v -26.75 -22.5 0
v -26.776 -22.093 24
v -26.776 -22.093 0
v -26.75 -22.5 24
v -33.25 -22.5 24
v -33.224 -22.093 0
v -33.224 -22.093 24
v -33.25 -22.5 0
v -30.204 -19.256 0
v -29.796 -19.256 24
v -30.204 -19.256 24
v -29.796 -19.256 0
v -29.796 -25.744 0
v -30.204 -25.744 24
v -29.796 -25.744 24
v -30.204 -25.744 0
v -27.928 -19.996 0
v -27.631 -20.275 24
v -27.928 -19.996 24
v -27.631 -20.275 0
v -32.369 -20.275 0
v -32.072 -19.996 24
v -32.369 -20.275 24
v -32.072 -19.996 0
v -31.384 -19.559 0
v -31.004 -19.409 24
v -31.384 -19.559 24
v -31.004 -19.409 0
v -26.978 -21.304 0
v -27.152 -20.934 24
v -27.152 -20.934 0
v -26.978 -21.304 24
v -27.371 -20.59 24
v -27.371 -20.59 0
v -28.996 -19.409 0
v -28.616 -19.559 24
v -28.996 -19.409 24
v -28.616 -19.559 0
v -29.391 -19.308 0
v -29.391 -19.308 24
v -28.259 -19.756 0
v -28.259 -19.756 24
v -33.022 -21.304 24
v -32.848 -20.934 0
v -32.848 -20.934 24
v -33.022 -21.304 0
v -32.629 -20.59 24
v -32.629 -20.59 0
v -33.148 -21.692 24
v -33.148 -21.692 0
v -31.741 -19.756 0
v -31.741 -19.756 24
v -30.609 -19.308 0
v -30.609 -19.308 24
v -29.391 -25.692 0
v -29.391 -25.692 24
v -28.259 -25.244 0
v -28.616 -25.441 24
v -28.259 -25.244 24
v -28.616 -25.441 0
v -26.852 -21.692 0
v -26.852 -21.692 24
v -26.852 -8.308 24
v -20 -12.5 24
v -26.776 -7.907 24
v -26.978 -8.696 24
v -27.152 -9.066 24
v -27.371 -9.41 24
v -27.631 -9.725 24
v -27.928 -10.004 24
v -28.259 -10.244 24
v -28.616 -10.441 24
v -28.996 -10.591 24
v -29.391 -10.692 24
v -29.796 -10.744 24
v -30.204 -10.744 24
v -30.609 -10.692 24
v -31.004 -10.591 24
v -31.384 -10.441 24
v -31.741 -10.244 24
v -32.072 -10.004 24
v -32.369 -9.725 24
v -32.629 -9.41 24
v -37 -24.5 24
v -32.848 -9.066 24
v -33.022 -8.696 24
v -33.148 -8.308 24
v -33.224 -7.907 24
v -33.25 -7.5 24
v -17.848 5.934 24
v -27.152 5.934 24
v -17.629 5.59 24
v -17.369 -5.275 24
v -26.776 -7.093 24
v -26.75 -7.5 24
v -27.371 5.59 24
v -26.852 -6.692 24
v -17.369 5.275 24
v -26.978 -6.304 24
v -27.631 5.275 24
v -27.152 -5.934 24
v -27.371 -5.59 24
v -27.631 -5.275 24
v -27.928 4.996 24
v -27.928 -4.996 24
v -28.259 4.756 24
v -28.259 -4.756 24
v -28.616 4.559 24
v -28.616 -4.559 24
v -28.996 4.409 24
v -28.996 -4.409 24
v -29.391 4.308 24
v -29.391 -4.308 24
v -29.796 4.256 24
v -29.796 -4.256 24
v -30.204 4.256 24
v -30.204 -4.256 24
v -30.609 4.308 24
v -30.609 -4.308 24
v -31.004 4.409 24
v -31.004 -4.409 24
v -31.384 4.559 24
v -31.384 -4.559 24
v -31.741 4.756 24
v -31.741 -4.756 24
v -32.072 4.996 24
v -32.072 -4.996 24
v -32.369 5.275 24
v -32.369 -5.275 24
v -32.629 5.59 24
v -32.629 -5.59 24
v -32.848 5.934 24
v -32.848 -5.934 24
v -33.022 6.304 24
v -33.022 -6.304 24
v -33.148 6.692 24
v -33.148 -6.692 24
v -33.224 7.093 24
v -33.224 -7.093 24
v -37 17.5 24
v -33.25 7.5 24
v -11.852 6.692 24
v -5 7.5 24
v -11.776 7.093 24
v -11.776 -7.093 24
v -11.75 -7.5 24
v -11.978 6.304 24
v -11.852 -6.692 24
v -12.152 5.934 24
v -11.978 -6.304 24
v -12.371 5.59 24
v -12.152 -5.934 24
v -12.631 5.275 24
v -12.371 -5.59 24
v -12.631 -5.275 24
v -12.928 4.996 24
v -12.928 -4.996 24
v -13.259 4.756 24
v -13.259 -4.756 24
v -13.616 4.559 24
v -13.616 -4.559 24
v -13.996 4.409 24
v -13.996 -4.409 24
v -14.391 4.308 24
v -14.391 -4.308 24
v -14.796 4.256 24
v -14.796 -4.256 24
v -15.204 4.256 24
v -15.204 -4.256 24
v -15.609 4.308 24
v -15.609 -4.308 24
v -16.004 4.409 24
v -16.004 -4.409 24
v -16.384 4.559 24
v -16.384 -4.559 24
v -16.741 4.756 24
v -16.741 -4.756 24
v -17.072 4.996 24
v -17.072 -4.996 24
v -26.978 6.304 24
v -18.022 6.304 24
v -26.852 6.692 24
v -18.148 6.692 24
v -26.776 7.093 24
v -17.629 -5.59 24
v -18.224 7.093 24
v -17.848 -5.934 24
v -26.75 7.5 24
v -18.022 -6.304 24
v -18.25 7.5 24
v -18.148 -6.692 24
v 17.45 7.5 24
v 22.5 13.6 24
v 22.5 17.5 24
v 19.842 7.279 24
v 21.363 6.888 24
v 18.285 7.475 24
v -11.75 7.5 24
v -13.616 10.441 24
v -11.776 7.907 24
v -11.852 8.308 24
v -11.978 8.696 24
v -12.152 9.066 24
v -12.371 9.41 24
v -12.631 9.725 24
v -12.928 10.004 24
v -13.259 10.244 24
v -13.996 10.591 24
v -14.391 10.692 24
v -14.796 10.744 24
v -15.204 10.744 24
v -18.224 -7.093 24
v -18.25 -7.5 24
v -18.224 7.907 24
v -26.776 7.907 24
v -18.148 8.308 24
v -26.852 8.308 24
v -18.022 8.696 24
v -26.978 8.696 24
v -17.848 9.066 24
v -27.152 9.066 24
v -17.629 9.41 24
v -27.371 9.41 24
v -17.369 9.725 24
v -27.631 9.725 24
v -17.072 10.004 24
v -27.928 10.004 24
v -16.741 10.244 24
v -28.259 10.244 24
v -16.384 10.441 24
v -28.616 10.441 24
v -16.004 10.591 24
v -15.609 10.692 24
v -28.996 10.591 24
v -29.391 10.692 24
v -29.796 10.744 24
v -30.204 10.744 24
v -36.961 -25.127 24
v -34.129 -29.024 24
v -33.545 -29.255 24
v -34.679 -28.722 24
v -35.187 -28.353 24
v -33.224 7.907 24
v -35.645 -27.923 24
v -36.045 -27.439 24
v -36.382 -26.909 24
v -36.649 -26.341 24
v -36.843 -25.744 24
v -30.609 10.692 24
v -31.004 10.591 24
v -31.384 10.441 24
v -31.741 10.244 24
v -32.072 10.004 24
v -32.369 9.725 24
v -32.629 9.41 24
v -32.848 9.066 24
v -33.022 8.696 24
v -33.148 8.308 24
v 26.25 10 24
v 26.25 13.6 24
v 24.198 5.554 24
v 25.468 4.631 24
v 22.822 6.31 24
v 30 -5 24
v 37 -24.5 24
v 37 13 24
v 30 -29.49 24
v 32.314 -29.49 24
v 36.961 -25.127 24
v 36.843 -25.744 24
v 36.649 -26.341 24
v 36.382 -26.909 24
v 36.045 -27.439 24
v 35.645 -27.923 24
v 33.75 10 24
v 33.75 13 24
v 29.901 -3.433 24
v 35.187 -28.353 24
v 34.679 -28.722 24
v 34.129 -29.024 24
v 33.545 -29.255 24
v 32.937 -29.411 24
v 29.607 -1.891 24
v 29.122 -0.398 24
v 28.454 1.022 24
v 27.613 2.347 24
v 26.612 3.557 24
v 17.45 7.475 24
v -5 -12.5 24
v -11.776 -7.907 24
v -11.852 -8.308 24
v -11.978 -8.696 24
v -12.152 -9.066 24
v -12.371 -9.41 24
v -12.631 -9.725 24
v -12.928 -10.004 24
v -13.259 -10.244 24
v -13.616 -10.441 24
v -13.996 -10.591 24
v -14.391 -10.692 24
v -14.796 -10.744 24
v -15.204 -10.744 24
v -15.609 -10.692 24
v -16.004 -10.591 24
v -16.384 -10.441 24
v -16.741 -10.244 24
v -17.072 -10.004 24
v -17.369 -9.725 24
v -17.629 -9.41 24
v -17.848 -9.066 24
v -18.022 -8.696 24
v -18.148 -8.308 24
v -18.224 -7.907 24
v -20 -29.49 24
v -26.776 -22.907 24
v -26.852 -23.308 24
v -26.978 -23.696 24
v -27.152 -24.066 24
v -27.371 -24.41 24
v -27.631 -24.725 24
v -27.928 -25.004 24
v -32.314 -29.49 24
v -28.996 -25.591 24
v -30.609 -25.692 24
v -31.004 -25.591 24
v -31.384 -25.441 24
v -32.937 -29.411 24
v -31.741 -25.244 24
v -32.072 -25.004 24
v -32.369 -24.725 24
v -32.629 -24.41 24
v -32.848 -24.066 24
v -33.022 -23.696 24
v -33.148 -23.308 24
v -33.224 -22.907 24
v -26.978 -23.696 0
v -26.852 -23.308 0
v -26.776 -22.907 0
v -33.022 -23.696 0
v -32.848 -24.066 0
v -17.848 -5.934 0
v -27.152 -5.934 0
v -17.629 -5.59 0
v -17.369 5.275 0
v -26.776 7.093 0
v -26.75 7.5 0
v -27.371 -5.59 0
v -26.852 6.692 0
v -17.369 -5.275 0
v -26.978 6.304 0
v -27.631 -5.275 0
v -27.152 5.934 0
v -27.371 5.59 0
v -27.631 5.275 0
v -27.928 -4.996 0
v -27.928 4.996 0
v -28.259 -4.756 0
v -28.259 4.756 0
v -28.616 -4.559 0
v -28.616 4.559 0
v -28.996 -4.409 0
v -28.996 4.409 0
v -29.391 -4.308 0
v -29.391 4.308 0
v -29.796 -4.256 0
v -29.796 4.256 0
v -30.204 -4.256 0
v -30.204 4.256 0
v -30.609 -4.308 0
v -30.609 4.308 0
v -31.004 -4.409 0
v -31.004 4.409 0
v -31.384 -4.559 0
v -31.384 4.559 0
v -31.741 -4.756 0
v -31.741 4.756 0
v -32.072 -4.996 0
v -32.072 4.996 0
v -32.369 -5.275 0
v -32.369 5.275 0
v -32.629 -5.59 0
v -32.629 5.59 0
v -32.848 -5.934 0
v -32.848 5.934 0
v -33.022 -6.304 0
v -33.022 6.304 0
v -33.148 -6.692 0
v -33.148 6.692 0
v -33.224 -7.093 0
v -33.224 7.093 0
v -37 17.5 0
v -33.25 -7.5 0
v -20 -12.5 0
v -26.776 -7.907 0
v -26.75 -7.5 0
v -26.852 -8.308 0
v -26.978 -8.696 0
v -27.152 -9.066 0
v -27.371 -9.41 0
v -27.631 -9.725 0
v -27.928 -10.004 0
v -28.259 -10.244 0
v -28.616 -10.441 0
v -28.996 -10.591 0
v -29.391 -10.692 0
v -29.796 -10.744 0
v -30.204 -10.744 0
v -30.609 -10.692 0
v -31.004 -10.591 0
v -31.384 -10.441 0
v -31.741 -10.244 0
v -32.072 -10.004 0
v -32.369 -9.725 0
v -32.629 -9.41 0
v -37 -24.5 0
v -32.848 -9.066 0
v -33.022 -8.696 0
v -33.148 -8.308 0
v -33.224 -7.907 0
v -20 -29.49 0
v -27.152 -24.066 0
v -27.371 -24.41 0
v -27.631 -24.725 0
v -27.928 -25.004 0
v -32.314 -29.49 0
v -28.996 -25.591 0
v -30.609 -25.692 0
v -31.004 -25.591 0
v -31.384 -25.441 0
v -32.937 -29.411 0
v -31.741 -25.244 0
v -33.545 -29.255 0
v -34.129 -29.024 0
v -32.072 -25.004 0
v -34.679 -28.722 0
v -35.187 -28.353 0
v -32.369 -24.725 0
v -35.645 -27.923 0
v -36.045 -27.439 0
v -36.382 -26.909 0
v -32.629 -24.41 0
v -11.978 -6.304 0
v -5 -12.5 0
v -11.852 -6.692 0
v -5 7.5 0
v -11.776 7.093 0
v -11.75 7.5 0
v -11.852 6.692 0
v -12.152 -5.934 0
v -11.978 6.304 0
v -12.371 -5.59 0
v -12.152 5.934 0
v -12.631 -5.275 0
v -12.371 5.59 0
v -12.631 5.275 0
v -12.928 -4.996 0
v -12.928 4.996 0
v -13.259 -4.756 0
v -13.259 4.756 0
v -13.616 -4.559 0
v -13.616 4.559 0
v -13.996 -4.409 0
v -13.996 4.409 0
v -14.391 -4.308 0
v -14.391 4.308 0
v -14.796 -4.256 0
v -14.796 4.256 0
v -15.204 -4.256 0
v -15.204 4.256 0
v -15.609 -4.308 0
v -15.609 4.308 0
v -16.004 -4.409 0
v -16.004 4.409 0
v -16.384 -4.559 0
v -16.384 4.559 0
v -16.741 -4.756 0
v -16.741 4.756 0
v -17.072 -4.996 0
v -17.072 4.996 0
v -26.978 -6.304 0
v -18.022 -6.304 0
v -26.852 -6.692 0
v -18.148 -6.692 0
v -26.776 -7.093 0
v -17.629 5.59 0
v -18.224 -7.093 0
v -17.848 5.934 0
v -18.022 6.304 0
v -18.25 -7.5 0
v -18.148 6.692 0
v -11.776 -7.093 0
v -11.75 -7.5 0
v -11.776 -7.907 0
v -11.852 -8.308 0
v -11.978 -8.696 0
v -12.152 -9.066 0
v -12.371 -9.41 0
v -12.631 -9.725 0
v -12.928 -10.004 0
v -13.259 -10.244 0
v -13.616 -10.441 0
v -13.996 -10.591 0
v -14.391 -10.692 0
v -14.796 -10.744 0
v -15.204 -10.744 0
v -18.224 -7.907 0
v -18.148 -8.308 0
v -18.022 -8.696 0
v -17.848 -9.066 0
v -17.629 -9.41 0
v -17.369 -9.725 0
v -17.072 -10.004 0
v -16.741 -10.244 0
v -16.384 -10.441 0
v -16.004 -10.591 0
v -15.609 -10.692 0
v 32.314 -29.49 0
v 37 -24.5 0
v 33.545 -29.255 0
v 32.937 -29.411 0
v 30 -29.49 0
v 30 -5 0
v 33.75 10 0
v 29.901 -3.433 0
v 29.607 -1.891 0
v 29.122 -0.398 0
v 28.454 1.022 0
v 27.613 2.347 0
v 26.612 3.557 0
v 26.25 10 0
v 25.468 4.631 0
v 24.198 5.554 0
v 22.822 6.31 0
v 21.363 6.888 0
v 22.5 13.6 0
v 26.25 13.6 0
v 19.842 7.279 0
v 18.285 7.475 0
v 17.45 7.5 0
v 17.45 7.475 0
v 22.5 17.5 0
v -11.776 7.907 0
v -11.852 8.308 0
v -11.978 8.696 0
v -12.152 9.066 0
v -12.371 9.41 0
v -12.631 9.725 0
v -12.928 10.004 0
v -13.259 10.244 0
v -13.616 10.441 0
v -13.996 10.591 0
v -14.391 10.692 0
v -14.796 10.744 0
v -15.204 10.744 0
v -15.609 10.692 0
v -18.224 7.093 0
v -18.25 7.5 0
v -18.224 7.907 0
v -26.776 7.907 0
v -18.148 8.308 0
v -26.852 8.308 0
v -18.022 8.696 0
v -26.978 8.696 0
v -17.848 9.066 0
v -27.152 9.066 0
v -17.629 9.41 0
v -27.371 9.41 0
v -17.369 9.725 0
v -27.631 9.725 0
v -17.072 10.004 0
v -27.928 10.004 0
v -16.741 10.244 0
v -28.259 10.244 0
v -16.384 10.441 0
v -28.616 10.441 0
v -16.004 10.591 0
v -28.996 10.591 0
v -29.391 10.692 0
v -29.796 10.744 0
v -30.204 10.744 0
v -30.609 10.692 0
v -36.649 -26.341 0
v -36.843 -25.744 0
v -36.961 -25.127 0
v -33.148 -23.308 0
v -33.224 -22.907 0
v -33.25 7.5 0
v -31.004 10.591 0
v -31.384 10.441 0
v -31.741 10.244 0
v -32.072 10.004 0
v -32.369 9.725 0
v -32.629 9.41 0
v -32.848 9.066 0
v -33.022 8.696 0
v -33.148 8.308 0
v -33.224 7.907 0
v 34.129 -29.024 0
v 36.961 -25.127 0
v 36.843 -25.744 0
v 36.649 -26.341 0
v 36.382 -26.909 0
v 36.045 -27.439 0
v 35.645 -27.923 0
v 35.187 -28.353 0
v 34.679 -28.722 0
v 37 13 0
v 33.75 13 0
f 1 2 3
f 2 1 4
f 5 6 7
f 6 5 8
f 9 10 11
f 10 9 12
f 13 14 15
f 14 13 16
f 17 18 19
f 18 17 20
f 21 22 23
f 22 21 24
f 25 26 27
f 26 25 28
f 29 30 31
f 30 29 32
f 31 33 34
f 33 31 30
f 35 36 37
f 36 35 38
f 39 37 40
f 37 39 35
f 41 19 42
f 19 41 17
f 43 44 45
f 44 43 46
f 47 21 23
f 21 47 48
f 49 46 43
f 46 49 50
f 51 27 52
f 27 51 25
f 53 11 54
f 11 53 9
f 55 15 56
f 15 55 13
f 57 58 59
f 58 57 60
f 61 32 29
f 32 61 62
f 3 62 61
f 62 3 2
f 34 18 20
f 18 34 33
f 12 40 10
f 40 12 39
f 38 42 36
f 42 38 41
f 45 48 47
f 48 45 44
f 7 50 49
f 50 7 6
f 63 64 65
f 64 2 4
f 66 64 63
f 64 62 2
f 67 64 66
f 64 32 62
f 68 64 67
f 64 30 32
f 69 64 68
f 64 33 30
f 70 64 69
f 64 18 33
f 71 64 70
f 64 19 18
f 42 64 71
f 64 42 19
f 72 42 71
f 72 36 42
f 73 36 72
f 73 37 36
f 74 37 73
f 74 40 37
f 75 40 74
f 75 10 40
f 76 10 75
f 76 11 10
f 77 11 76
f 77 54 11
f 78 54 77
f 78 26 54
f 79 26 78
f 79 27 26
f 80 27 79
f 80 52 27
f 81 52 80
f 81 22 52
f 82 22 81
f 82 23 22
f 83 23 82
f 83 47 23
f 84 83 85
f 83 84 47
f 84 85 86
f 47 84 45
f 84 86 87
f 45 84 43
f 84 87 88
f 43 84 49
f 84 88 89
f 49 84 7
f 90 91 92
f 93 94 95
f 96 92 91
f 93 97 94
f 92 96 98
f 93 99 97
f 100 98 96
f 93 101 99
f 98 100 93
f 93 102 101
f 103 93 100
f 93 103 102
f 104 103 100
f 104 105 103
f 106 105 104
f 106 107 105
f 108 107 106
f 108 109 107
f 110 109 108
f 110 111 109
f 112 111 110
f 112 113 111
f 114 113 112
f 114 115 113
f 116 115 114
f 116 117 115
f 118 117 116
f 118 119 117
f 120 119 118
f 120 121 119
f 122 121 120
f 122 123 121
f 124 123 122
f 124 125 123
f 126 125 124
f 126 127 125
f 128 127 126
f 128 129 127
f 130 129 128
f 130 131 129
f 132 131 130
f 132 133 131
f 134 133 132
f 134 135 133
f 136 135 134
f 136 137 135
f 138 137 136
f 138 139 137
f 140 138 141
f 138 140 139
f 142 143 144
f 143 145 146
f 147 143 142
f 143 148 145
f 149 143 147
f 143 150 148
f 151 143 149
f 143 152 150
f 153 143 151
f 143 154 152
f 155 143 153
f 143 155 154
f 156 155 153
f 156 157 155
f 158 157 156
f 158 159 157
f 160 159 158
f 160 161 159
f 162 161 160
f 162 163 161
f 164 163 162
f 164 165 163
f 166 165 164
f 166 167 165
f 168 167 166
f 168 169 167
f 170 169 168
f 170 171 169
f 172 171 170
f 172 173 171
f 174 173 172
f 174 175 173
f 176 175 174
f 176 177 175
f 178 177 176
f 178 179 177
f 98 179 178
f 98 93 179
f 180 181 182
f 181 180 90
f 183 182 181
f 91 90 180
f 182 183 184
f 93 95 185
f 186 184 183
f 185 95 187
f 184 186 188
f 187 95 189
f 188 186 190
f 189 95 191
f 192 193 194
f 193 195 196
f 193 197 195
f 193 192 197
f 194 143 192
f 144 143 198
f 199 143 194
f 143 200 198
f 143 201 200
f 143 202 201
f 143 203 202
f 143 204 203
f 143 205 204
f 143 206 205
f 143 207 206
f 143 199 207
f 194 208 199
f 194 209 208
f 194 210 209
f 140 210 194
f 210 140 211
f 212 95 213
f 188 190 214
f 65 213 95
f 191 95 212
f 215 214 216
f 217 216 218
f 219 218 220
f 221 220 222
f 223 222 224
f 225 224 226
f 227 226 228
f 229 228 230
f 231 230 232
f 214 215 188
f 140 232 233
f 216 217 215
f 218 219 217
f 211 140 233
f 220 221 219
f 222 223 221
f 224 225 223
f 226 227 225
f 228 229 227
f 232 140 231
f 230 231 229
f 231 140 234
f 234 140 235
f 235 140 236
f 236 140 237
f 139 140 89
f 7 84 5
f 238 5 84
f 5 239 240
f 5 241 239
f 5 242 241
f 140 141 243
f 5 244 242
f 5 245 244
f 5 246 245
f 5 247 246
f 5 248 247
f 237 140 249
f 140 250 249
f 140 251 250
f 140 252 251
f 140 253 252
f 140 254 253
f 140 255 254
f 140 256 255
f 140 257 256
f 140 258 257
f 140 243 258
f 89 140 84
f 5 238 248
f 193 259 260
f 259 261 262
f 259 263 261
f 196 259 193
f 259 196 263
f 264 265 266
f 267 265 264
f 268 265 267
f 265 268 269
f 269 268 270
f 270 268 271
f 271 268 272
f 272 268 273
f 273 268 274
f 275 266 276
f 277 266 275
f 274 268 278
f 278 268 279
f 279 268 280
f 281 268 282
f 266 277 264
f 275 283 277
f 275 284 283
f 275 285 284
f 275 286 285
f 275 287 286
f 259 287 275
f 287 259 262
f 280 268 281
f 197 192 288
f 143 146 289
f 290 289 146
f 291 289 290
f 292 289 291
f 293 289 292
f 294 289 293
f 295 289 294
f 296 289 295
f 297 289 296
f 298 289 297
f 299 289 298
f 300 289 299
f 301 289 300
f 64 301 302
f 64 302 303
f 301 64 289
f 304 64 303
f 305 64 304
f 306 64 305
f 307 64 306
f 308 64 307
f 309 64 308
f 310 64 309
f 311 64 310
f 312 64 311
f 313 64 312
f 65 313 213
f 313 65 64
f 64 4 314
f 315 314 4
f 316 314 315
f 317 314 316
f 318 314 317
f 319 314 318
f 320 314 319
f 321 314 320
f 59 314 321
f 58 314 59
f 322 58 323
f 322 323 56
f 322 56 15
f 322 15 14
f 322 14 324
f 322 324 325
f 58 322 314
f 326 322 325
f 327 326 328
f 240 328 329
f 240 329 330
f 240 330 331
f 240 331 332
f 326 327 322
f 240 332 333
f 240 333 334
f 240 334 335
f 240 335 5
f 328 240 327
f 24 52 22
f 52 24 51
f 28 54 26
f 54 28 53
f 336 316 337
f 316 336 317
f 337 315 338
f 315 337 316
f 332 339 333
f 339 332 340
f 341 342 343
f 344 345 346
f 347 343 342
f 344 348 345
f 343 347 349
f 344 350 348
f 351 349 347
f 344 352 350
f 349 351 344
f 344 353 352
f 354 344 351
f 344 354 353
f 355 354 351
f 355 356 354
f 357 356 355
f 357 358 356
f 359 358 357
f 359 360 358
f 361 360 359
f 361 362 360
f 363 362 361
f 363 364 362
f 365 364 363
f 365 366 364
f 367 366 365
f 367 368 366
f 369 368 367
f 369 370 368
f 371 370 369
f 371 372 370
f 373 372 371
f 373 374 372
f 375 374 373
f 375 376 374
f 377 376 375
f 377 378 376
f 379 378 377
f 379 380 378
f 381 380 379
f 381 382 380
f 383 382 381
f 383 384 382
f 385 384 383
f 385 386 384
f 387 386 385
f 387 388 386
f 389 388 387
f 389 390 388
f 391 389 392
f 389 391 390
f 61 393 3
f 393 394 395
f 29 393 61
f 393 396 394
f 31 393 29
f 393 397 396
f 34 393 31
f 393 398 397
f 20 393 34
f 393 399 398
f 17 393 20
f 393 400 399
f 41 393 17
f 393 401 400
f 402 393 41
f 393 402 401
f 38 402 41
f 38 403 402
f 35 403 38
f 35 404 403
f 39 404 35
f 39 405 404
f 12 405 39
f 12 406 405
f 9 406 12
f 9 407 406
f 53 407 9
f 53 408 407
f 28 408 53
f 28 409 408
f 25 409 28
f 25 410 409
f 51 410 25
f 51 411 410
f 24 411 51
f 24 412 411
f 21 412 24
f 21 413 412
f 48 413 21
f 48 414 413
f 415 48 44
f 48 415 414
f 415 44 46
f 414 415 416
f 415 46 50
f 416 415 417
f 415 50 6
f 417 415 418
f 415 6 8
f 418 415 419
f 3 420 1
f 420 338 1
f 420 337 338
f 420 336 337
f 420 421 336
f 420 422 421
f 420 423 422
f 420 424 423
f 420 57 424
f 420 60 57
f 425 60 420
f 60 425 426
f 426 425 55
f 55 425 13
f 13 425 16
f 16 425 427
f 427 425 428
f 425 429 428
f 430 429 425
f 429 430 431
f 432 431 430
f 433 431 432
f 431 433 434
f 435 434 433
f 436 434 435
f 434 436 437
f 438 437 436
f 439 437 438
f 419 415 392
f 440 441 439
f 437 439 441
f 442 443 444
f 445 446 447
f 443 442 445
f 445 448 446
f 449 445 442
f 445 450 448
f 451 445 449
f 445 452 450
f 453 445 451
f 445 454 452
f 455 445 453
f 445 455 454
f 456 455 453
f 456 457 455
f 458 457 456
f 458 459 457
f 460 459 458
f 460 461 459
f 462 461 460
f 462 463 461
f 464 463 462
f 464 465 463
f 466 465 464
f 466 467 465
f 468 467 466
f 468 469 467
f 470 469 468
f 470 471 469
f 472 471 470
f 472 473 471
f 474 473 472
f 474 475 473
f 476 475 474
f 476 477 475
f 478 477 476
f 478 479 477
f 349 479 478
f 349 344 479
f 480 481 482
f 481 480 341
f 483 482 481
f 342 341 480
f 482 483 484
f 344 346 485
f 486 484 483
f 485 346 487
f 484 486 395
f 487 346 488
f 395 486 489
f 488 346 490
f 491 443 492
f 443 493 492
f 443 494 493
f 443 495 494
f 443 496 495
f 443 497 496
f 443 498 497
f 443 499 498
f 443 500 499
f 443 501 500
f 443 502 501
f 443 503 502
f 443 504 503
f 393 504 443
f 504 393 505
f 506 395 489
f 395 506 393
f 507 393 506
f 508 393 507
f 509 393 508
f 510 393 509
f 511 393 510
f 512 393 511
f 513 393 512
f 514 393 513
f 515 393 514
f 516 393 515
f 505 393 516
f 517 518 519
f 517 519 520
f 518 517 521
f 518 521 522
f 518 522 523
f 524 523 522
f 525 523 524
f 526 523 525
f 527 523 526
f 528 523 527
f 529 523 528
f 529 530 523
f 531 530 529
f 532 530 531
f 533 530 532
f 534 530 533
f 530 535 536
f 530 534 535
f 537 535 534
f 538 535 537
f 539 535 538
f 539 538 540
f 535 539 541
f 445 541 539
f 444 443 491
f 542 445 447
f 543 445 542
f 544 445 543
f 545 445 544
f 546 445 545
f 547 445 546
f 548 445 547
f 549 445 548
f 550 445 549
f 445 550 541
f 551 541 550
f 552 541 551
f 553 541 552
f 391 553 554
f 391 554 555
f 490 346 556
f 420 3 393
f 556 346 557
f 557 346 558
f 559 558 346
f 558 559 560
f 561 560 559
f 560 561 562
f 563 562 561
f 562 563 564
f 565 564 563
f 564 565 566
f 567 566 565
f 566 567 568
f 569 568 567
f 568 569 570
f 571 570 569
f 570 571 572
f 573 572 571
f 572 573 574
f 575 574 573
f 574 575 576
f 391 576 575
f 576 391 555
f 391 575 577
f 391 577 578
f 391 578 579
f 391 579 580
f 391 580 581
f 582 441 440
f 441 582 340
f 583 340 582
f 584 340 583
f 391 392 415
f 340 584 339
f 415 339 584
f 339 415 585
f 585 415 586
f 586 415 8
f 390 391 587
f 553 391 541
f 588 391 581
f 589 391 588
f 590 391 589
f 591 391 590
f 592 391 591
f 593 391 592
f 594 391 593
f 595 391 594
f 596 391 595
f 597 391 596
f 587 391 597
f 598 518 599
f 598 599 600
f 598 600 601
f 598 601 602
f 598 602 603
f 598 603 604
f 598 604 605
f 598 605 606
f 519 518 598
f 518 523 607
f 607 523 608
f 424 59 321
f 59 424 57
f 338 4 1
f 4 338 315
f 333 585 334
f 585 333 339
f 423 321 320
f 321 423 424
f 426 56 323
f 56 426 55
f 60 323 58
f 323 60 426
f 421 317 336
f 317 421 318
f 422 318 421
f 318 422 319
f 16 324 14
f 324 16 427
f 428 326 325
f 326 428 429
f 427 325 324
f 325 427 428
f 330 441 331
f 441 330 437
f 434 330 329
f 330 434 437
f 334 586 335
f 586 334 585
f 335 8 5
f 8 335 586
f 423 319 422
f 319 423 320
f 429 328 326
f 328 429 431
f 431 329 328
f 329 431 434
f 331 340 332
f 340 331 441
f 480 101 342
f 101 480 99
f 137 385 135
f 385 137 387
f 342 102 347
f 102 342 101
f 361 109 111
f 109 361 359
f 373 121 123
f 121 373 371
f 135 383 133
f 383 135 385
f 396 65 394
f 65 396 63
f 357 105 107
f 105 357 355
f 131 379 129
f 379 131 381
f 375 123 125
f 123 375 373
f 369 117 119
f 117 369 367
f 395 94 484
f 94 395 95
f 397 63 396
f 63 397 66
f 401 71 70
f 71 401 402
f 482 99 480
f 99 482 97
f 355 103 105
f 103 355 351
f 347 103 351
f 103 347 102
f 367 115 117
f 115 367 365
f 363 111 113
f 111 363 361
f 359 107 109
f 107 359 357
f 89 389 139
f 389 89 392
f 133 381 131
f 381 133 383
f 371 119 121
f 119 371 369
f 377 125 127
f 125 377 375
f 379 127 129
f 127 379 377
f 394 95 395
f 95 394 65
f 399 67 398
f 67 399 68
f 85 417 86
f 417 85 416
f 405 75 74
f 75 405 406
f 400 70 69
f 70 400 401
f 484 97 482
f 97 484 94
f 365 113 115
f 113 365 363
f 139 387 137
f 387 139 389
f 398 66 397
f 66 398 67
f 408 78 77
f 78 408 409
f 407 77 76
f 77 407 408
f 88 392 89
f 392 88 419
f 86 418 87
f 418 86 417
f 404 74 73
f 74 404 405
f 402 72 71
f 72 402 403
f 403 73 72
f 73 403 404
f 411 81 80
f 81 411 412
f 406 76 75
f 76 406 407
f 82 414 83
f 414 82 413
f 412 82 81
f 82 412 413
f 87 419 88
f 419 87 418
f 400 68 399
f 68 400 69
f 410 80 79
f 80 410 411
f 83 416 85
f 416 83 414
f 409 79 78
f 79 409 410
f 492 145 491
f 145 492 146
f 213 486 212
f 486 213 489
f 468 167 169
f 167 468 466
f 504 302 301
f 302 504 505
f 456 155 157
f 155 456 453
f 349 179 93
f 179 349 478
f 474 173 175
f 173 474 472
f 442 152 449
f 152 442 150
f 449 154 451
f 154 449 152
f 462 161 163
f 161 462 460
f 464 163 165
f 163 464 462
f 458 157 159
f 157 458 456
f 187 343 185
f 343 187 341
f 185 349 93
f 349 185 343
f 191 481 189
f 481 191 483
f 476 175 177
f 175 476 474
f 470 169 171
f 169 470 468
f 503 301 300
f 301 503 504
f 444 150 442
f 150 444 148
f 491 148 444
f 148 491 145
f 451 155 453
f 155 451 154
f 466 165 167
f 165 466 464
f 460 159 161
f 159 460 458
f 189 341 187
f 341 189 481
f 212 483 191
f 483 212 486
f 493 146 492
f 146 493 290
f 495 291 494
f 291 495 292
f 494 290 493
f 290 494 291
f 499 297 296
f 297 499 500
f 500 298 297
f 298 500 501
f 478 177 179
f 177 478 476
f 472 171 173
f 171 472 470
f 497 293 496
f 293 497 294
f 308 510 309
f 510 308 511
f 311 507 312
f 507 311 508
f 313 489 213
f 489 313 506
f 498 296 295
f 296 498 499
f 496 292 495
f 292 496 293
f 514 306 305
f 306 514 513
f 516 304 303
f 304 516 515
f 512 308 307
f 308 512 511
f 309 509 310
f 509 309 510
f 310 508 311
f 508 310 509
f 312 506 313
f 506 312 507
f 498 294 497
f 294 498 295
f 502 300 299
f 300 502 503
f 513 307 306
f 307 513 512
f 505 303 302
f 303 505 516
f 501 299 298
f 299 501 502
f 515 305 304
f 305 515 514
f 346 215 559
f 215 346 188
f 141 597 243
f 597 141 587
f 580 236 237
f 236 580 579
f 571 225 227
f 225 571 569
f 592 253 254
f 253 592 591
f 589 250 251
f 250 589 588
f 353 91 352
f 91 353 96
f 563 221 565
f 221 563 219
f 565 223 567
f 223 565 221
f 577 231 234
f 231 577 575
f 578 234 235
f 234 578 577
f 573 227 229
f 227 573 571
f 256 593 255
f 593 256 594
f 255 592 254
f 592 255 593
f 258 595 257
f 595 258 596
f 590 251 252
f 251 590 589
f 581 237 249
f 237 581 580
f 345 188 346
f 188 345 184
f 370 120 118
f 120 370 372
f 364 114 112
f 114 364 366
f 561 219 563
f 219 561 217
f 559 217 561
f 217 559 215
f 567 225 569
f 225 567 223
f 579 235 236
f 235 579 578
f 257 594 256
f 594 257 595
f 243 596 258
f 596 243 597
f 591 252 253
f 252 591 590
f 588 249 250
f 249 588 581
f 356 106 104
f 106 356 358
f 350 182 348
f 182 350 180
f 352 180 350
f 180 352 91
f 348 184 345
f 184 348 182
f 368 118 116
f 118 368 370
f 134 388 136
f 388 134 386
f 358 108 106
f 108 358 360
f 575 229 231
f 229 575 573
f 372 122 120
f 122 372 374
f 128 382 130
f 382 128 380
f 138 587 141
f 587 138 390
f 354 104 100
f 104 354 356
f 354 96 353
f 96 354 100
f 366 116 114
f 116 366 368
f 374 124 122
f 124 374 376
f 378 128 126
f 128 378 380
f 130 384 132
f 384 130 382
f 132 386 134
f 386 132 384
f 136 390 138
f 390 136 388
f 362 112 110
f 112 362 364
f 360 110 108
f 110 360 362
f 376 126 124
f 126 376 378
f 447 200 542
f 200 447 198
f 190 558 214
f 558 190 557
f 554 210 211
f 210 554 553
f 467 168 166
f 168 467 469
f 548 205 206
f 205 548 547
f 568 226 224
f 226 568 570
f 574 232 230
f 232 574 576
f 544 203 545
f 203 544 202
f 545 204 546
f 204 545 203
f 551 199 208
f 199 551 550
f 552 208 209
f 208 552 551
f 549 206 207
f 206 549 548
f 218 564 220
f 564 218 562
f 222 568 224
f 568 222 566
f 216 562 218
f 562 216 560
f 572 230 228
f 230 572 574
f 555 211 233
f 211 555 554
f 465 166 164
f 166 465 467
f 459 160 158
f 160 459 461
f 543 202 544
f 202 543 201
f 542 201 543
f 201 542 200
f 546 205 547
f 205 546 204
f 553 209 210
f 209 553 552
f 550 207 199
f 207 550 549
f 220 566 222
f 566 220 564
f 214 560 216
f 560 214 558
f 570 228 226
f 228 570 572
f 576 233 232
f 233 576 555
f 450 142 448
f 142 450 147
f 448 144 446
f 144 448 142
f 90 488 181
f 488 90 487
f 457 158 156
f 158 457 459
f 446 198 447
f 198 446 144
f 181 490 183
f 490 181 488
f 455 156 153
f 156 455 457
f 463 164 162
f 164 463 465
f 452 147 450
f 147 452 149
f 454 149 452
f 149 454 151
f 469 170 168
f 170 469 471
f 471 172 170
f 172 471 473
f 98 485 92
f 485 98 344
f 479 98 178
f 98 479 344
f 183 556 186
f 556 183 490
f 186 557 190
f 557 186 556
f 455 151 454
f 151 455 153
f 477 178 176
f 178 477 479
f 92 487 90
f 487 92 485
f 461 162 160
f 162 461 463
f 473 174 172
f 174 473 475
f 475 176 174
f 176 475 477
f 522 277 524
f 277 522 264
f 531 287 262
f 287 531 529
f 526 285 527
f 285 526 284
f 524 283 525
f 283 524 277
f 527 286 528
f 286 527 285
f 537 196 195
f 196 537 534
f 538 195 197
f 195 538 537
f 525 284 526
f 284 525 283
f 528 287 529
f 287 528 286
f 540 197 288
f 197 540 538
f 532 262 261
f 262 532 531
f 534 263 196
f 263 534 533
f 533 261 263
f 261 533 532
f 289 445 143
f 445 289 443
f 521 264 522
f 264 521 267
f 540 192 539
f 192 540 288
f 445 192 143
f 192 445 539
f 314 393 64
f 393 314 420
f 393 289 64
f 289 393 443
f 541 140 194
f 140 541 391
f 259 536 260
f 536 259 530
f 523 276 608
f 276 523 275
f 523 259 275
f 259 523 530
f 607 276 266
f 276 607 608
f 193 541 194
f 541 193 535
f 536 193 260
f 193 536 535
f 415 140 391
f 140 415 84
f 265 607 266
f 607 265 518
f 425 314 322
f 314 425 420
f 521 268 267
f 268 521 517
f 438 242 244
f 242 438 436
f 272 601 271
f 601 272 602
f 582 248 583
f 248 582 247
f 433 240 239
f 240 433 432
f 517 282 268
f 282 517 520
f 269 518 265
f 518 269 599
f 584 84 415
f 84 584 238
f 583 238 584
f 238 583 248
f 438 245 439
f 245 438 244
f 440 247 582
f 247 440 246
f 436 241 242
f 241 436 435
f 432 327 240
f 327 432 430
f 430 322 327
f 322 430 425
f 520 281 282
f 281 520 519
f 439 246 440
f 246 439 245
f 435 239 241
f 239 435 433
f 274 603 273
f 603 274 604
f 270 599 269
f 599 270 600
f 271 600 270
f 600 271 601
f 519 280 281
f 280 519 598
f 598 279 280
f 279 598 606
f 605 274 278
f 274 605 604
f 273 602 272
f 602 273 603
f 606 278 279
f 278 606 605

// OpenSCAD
$fn = 50;


difference() {
	union() {
		hull() {
			translate(v = [-32.0000000000, 24.5000000000, 0]) {
				cylinder(h = 24, r = 5);
			}
			translate(v = [32.0000000000, 24.5000000000, 0]) {
				cylinder(h = 24, r = 5);
			}
			translate(v = [-32.0000000000, -24.5000000000, 0]) {
				cylinder(h = 24, r = 5);
			}
			translate(v = [32.0000000000, -24.5000000000, 0]) {
				cylinder(h = 24, r = 5);
			}
		}
	}
	union() {
		translate(v = [-30.0000000000, -22.5000000000, 0]) {
			cylinder(h = 24, r = 3.2500000000);
		}
		translate(v = [-30.0000000000, -7.5000000000, 0]) {
			cylinder(h = 24, r = 3.2500000000);
		}
		translate(v = [-15.0000000000, -7.5000000000, 0]) {
			cylinder(h = 24, r = 3.2500000000);
		}
		translate(v = [-30.0000000000, 7.5000000000, 0]) {
			cylinder(h = 24, r = 3.2500000000);
		}
		translate(v = [-15.0000000000, 7.5000000000, 0]) {
			cylinder(h = 24, r = 3.2500000000);
		}
		#translate(v = [17.5000000000, -5, 0.0000000000]) {
			cylinder(h = 24, r = 12.5000000000);
		}
		#translate(v = [-5.0000000000, -95.0000000000, 0]) {
			cube(size = [35, 90, 24]);
		}
		#translate(v = [-5.0000000000, -95.0000000000, 0]) {
			cube(size = [22.4500000000, 102.5000000000, 24]);
		}
		#translate(v = [-20.0000000000, -72.5000000000, 0]) {
			cube(size = [50, 60, 24]);
		}
		#translate(v = [-58.5000000000, 17.5000000000, 0]) {
			cube(size = [100, 85, 24]);
		}
		#translate(v = [26.2500000000, 10.0000000000, 0]) {
			cube(size = [7.5000000000, 100, 24]);
		}
		#translate(v = [33.5000000000, 13.0000000000, 0]) {
			cube(size = [7, 94, 24]);
		}
		#translate(v = [22.5000000000, 13.6000000000, 0]) {
			cube(size = [4, 4, 24]);
		}
	}
}
